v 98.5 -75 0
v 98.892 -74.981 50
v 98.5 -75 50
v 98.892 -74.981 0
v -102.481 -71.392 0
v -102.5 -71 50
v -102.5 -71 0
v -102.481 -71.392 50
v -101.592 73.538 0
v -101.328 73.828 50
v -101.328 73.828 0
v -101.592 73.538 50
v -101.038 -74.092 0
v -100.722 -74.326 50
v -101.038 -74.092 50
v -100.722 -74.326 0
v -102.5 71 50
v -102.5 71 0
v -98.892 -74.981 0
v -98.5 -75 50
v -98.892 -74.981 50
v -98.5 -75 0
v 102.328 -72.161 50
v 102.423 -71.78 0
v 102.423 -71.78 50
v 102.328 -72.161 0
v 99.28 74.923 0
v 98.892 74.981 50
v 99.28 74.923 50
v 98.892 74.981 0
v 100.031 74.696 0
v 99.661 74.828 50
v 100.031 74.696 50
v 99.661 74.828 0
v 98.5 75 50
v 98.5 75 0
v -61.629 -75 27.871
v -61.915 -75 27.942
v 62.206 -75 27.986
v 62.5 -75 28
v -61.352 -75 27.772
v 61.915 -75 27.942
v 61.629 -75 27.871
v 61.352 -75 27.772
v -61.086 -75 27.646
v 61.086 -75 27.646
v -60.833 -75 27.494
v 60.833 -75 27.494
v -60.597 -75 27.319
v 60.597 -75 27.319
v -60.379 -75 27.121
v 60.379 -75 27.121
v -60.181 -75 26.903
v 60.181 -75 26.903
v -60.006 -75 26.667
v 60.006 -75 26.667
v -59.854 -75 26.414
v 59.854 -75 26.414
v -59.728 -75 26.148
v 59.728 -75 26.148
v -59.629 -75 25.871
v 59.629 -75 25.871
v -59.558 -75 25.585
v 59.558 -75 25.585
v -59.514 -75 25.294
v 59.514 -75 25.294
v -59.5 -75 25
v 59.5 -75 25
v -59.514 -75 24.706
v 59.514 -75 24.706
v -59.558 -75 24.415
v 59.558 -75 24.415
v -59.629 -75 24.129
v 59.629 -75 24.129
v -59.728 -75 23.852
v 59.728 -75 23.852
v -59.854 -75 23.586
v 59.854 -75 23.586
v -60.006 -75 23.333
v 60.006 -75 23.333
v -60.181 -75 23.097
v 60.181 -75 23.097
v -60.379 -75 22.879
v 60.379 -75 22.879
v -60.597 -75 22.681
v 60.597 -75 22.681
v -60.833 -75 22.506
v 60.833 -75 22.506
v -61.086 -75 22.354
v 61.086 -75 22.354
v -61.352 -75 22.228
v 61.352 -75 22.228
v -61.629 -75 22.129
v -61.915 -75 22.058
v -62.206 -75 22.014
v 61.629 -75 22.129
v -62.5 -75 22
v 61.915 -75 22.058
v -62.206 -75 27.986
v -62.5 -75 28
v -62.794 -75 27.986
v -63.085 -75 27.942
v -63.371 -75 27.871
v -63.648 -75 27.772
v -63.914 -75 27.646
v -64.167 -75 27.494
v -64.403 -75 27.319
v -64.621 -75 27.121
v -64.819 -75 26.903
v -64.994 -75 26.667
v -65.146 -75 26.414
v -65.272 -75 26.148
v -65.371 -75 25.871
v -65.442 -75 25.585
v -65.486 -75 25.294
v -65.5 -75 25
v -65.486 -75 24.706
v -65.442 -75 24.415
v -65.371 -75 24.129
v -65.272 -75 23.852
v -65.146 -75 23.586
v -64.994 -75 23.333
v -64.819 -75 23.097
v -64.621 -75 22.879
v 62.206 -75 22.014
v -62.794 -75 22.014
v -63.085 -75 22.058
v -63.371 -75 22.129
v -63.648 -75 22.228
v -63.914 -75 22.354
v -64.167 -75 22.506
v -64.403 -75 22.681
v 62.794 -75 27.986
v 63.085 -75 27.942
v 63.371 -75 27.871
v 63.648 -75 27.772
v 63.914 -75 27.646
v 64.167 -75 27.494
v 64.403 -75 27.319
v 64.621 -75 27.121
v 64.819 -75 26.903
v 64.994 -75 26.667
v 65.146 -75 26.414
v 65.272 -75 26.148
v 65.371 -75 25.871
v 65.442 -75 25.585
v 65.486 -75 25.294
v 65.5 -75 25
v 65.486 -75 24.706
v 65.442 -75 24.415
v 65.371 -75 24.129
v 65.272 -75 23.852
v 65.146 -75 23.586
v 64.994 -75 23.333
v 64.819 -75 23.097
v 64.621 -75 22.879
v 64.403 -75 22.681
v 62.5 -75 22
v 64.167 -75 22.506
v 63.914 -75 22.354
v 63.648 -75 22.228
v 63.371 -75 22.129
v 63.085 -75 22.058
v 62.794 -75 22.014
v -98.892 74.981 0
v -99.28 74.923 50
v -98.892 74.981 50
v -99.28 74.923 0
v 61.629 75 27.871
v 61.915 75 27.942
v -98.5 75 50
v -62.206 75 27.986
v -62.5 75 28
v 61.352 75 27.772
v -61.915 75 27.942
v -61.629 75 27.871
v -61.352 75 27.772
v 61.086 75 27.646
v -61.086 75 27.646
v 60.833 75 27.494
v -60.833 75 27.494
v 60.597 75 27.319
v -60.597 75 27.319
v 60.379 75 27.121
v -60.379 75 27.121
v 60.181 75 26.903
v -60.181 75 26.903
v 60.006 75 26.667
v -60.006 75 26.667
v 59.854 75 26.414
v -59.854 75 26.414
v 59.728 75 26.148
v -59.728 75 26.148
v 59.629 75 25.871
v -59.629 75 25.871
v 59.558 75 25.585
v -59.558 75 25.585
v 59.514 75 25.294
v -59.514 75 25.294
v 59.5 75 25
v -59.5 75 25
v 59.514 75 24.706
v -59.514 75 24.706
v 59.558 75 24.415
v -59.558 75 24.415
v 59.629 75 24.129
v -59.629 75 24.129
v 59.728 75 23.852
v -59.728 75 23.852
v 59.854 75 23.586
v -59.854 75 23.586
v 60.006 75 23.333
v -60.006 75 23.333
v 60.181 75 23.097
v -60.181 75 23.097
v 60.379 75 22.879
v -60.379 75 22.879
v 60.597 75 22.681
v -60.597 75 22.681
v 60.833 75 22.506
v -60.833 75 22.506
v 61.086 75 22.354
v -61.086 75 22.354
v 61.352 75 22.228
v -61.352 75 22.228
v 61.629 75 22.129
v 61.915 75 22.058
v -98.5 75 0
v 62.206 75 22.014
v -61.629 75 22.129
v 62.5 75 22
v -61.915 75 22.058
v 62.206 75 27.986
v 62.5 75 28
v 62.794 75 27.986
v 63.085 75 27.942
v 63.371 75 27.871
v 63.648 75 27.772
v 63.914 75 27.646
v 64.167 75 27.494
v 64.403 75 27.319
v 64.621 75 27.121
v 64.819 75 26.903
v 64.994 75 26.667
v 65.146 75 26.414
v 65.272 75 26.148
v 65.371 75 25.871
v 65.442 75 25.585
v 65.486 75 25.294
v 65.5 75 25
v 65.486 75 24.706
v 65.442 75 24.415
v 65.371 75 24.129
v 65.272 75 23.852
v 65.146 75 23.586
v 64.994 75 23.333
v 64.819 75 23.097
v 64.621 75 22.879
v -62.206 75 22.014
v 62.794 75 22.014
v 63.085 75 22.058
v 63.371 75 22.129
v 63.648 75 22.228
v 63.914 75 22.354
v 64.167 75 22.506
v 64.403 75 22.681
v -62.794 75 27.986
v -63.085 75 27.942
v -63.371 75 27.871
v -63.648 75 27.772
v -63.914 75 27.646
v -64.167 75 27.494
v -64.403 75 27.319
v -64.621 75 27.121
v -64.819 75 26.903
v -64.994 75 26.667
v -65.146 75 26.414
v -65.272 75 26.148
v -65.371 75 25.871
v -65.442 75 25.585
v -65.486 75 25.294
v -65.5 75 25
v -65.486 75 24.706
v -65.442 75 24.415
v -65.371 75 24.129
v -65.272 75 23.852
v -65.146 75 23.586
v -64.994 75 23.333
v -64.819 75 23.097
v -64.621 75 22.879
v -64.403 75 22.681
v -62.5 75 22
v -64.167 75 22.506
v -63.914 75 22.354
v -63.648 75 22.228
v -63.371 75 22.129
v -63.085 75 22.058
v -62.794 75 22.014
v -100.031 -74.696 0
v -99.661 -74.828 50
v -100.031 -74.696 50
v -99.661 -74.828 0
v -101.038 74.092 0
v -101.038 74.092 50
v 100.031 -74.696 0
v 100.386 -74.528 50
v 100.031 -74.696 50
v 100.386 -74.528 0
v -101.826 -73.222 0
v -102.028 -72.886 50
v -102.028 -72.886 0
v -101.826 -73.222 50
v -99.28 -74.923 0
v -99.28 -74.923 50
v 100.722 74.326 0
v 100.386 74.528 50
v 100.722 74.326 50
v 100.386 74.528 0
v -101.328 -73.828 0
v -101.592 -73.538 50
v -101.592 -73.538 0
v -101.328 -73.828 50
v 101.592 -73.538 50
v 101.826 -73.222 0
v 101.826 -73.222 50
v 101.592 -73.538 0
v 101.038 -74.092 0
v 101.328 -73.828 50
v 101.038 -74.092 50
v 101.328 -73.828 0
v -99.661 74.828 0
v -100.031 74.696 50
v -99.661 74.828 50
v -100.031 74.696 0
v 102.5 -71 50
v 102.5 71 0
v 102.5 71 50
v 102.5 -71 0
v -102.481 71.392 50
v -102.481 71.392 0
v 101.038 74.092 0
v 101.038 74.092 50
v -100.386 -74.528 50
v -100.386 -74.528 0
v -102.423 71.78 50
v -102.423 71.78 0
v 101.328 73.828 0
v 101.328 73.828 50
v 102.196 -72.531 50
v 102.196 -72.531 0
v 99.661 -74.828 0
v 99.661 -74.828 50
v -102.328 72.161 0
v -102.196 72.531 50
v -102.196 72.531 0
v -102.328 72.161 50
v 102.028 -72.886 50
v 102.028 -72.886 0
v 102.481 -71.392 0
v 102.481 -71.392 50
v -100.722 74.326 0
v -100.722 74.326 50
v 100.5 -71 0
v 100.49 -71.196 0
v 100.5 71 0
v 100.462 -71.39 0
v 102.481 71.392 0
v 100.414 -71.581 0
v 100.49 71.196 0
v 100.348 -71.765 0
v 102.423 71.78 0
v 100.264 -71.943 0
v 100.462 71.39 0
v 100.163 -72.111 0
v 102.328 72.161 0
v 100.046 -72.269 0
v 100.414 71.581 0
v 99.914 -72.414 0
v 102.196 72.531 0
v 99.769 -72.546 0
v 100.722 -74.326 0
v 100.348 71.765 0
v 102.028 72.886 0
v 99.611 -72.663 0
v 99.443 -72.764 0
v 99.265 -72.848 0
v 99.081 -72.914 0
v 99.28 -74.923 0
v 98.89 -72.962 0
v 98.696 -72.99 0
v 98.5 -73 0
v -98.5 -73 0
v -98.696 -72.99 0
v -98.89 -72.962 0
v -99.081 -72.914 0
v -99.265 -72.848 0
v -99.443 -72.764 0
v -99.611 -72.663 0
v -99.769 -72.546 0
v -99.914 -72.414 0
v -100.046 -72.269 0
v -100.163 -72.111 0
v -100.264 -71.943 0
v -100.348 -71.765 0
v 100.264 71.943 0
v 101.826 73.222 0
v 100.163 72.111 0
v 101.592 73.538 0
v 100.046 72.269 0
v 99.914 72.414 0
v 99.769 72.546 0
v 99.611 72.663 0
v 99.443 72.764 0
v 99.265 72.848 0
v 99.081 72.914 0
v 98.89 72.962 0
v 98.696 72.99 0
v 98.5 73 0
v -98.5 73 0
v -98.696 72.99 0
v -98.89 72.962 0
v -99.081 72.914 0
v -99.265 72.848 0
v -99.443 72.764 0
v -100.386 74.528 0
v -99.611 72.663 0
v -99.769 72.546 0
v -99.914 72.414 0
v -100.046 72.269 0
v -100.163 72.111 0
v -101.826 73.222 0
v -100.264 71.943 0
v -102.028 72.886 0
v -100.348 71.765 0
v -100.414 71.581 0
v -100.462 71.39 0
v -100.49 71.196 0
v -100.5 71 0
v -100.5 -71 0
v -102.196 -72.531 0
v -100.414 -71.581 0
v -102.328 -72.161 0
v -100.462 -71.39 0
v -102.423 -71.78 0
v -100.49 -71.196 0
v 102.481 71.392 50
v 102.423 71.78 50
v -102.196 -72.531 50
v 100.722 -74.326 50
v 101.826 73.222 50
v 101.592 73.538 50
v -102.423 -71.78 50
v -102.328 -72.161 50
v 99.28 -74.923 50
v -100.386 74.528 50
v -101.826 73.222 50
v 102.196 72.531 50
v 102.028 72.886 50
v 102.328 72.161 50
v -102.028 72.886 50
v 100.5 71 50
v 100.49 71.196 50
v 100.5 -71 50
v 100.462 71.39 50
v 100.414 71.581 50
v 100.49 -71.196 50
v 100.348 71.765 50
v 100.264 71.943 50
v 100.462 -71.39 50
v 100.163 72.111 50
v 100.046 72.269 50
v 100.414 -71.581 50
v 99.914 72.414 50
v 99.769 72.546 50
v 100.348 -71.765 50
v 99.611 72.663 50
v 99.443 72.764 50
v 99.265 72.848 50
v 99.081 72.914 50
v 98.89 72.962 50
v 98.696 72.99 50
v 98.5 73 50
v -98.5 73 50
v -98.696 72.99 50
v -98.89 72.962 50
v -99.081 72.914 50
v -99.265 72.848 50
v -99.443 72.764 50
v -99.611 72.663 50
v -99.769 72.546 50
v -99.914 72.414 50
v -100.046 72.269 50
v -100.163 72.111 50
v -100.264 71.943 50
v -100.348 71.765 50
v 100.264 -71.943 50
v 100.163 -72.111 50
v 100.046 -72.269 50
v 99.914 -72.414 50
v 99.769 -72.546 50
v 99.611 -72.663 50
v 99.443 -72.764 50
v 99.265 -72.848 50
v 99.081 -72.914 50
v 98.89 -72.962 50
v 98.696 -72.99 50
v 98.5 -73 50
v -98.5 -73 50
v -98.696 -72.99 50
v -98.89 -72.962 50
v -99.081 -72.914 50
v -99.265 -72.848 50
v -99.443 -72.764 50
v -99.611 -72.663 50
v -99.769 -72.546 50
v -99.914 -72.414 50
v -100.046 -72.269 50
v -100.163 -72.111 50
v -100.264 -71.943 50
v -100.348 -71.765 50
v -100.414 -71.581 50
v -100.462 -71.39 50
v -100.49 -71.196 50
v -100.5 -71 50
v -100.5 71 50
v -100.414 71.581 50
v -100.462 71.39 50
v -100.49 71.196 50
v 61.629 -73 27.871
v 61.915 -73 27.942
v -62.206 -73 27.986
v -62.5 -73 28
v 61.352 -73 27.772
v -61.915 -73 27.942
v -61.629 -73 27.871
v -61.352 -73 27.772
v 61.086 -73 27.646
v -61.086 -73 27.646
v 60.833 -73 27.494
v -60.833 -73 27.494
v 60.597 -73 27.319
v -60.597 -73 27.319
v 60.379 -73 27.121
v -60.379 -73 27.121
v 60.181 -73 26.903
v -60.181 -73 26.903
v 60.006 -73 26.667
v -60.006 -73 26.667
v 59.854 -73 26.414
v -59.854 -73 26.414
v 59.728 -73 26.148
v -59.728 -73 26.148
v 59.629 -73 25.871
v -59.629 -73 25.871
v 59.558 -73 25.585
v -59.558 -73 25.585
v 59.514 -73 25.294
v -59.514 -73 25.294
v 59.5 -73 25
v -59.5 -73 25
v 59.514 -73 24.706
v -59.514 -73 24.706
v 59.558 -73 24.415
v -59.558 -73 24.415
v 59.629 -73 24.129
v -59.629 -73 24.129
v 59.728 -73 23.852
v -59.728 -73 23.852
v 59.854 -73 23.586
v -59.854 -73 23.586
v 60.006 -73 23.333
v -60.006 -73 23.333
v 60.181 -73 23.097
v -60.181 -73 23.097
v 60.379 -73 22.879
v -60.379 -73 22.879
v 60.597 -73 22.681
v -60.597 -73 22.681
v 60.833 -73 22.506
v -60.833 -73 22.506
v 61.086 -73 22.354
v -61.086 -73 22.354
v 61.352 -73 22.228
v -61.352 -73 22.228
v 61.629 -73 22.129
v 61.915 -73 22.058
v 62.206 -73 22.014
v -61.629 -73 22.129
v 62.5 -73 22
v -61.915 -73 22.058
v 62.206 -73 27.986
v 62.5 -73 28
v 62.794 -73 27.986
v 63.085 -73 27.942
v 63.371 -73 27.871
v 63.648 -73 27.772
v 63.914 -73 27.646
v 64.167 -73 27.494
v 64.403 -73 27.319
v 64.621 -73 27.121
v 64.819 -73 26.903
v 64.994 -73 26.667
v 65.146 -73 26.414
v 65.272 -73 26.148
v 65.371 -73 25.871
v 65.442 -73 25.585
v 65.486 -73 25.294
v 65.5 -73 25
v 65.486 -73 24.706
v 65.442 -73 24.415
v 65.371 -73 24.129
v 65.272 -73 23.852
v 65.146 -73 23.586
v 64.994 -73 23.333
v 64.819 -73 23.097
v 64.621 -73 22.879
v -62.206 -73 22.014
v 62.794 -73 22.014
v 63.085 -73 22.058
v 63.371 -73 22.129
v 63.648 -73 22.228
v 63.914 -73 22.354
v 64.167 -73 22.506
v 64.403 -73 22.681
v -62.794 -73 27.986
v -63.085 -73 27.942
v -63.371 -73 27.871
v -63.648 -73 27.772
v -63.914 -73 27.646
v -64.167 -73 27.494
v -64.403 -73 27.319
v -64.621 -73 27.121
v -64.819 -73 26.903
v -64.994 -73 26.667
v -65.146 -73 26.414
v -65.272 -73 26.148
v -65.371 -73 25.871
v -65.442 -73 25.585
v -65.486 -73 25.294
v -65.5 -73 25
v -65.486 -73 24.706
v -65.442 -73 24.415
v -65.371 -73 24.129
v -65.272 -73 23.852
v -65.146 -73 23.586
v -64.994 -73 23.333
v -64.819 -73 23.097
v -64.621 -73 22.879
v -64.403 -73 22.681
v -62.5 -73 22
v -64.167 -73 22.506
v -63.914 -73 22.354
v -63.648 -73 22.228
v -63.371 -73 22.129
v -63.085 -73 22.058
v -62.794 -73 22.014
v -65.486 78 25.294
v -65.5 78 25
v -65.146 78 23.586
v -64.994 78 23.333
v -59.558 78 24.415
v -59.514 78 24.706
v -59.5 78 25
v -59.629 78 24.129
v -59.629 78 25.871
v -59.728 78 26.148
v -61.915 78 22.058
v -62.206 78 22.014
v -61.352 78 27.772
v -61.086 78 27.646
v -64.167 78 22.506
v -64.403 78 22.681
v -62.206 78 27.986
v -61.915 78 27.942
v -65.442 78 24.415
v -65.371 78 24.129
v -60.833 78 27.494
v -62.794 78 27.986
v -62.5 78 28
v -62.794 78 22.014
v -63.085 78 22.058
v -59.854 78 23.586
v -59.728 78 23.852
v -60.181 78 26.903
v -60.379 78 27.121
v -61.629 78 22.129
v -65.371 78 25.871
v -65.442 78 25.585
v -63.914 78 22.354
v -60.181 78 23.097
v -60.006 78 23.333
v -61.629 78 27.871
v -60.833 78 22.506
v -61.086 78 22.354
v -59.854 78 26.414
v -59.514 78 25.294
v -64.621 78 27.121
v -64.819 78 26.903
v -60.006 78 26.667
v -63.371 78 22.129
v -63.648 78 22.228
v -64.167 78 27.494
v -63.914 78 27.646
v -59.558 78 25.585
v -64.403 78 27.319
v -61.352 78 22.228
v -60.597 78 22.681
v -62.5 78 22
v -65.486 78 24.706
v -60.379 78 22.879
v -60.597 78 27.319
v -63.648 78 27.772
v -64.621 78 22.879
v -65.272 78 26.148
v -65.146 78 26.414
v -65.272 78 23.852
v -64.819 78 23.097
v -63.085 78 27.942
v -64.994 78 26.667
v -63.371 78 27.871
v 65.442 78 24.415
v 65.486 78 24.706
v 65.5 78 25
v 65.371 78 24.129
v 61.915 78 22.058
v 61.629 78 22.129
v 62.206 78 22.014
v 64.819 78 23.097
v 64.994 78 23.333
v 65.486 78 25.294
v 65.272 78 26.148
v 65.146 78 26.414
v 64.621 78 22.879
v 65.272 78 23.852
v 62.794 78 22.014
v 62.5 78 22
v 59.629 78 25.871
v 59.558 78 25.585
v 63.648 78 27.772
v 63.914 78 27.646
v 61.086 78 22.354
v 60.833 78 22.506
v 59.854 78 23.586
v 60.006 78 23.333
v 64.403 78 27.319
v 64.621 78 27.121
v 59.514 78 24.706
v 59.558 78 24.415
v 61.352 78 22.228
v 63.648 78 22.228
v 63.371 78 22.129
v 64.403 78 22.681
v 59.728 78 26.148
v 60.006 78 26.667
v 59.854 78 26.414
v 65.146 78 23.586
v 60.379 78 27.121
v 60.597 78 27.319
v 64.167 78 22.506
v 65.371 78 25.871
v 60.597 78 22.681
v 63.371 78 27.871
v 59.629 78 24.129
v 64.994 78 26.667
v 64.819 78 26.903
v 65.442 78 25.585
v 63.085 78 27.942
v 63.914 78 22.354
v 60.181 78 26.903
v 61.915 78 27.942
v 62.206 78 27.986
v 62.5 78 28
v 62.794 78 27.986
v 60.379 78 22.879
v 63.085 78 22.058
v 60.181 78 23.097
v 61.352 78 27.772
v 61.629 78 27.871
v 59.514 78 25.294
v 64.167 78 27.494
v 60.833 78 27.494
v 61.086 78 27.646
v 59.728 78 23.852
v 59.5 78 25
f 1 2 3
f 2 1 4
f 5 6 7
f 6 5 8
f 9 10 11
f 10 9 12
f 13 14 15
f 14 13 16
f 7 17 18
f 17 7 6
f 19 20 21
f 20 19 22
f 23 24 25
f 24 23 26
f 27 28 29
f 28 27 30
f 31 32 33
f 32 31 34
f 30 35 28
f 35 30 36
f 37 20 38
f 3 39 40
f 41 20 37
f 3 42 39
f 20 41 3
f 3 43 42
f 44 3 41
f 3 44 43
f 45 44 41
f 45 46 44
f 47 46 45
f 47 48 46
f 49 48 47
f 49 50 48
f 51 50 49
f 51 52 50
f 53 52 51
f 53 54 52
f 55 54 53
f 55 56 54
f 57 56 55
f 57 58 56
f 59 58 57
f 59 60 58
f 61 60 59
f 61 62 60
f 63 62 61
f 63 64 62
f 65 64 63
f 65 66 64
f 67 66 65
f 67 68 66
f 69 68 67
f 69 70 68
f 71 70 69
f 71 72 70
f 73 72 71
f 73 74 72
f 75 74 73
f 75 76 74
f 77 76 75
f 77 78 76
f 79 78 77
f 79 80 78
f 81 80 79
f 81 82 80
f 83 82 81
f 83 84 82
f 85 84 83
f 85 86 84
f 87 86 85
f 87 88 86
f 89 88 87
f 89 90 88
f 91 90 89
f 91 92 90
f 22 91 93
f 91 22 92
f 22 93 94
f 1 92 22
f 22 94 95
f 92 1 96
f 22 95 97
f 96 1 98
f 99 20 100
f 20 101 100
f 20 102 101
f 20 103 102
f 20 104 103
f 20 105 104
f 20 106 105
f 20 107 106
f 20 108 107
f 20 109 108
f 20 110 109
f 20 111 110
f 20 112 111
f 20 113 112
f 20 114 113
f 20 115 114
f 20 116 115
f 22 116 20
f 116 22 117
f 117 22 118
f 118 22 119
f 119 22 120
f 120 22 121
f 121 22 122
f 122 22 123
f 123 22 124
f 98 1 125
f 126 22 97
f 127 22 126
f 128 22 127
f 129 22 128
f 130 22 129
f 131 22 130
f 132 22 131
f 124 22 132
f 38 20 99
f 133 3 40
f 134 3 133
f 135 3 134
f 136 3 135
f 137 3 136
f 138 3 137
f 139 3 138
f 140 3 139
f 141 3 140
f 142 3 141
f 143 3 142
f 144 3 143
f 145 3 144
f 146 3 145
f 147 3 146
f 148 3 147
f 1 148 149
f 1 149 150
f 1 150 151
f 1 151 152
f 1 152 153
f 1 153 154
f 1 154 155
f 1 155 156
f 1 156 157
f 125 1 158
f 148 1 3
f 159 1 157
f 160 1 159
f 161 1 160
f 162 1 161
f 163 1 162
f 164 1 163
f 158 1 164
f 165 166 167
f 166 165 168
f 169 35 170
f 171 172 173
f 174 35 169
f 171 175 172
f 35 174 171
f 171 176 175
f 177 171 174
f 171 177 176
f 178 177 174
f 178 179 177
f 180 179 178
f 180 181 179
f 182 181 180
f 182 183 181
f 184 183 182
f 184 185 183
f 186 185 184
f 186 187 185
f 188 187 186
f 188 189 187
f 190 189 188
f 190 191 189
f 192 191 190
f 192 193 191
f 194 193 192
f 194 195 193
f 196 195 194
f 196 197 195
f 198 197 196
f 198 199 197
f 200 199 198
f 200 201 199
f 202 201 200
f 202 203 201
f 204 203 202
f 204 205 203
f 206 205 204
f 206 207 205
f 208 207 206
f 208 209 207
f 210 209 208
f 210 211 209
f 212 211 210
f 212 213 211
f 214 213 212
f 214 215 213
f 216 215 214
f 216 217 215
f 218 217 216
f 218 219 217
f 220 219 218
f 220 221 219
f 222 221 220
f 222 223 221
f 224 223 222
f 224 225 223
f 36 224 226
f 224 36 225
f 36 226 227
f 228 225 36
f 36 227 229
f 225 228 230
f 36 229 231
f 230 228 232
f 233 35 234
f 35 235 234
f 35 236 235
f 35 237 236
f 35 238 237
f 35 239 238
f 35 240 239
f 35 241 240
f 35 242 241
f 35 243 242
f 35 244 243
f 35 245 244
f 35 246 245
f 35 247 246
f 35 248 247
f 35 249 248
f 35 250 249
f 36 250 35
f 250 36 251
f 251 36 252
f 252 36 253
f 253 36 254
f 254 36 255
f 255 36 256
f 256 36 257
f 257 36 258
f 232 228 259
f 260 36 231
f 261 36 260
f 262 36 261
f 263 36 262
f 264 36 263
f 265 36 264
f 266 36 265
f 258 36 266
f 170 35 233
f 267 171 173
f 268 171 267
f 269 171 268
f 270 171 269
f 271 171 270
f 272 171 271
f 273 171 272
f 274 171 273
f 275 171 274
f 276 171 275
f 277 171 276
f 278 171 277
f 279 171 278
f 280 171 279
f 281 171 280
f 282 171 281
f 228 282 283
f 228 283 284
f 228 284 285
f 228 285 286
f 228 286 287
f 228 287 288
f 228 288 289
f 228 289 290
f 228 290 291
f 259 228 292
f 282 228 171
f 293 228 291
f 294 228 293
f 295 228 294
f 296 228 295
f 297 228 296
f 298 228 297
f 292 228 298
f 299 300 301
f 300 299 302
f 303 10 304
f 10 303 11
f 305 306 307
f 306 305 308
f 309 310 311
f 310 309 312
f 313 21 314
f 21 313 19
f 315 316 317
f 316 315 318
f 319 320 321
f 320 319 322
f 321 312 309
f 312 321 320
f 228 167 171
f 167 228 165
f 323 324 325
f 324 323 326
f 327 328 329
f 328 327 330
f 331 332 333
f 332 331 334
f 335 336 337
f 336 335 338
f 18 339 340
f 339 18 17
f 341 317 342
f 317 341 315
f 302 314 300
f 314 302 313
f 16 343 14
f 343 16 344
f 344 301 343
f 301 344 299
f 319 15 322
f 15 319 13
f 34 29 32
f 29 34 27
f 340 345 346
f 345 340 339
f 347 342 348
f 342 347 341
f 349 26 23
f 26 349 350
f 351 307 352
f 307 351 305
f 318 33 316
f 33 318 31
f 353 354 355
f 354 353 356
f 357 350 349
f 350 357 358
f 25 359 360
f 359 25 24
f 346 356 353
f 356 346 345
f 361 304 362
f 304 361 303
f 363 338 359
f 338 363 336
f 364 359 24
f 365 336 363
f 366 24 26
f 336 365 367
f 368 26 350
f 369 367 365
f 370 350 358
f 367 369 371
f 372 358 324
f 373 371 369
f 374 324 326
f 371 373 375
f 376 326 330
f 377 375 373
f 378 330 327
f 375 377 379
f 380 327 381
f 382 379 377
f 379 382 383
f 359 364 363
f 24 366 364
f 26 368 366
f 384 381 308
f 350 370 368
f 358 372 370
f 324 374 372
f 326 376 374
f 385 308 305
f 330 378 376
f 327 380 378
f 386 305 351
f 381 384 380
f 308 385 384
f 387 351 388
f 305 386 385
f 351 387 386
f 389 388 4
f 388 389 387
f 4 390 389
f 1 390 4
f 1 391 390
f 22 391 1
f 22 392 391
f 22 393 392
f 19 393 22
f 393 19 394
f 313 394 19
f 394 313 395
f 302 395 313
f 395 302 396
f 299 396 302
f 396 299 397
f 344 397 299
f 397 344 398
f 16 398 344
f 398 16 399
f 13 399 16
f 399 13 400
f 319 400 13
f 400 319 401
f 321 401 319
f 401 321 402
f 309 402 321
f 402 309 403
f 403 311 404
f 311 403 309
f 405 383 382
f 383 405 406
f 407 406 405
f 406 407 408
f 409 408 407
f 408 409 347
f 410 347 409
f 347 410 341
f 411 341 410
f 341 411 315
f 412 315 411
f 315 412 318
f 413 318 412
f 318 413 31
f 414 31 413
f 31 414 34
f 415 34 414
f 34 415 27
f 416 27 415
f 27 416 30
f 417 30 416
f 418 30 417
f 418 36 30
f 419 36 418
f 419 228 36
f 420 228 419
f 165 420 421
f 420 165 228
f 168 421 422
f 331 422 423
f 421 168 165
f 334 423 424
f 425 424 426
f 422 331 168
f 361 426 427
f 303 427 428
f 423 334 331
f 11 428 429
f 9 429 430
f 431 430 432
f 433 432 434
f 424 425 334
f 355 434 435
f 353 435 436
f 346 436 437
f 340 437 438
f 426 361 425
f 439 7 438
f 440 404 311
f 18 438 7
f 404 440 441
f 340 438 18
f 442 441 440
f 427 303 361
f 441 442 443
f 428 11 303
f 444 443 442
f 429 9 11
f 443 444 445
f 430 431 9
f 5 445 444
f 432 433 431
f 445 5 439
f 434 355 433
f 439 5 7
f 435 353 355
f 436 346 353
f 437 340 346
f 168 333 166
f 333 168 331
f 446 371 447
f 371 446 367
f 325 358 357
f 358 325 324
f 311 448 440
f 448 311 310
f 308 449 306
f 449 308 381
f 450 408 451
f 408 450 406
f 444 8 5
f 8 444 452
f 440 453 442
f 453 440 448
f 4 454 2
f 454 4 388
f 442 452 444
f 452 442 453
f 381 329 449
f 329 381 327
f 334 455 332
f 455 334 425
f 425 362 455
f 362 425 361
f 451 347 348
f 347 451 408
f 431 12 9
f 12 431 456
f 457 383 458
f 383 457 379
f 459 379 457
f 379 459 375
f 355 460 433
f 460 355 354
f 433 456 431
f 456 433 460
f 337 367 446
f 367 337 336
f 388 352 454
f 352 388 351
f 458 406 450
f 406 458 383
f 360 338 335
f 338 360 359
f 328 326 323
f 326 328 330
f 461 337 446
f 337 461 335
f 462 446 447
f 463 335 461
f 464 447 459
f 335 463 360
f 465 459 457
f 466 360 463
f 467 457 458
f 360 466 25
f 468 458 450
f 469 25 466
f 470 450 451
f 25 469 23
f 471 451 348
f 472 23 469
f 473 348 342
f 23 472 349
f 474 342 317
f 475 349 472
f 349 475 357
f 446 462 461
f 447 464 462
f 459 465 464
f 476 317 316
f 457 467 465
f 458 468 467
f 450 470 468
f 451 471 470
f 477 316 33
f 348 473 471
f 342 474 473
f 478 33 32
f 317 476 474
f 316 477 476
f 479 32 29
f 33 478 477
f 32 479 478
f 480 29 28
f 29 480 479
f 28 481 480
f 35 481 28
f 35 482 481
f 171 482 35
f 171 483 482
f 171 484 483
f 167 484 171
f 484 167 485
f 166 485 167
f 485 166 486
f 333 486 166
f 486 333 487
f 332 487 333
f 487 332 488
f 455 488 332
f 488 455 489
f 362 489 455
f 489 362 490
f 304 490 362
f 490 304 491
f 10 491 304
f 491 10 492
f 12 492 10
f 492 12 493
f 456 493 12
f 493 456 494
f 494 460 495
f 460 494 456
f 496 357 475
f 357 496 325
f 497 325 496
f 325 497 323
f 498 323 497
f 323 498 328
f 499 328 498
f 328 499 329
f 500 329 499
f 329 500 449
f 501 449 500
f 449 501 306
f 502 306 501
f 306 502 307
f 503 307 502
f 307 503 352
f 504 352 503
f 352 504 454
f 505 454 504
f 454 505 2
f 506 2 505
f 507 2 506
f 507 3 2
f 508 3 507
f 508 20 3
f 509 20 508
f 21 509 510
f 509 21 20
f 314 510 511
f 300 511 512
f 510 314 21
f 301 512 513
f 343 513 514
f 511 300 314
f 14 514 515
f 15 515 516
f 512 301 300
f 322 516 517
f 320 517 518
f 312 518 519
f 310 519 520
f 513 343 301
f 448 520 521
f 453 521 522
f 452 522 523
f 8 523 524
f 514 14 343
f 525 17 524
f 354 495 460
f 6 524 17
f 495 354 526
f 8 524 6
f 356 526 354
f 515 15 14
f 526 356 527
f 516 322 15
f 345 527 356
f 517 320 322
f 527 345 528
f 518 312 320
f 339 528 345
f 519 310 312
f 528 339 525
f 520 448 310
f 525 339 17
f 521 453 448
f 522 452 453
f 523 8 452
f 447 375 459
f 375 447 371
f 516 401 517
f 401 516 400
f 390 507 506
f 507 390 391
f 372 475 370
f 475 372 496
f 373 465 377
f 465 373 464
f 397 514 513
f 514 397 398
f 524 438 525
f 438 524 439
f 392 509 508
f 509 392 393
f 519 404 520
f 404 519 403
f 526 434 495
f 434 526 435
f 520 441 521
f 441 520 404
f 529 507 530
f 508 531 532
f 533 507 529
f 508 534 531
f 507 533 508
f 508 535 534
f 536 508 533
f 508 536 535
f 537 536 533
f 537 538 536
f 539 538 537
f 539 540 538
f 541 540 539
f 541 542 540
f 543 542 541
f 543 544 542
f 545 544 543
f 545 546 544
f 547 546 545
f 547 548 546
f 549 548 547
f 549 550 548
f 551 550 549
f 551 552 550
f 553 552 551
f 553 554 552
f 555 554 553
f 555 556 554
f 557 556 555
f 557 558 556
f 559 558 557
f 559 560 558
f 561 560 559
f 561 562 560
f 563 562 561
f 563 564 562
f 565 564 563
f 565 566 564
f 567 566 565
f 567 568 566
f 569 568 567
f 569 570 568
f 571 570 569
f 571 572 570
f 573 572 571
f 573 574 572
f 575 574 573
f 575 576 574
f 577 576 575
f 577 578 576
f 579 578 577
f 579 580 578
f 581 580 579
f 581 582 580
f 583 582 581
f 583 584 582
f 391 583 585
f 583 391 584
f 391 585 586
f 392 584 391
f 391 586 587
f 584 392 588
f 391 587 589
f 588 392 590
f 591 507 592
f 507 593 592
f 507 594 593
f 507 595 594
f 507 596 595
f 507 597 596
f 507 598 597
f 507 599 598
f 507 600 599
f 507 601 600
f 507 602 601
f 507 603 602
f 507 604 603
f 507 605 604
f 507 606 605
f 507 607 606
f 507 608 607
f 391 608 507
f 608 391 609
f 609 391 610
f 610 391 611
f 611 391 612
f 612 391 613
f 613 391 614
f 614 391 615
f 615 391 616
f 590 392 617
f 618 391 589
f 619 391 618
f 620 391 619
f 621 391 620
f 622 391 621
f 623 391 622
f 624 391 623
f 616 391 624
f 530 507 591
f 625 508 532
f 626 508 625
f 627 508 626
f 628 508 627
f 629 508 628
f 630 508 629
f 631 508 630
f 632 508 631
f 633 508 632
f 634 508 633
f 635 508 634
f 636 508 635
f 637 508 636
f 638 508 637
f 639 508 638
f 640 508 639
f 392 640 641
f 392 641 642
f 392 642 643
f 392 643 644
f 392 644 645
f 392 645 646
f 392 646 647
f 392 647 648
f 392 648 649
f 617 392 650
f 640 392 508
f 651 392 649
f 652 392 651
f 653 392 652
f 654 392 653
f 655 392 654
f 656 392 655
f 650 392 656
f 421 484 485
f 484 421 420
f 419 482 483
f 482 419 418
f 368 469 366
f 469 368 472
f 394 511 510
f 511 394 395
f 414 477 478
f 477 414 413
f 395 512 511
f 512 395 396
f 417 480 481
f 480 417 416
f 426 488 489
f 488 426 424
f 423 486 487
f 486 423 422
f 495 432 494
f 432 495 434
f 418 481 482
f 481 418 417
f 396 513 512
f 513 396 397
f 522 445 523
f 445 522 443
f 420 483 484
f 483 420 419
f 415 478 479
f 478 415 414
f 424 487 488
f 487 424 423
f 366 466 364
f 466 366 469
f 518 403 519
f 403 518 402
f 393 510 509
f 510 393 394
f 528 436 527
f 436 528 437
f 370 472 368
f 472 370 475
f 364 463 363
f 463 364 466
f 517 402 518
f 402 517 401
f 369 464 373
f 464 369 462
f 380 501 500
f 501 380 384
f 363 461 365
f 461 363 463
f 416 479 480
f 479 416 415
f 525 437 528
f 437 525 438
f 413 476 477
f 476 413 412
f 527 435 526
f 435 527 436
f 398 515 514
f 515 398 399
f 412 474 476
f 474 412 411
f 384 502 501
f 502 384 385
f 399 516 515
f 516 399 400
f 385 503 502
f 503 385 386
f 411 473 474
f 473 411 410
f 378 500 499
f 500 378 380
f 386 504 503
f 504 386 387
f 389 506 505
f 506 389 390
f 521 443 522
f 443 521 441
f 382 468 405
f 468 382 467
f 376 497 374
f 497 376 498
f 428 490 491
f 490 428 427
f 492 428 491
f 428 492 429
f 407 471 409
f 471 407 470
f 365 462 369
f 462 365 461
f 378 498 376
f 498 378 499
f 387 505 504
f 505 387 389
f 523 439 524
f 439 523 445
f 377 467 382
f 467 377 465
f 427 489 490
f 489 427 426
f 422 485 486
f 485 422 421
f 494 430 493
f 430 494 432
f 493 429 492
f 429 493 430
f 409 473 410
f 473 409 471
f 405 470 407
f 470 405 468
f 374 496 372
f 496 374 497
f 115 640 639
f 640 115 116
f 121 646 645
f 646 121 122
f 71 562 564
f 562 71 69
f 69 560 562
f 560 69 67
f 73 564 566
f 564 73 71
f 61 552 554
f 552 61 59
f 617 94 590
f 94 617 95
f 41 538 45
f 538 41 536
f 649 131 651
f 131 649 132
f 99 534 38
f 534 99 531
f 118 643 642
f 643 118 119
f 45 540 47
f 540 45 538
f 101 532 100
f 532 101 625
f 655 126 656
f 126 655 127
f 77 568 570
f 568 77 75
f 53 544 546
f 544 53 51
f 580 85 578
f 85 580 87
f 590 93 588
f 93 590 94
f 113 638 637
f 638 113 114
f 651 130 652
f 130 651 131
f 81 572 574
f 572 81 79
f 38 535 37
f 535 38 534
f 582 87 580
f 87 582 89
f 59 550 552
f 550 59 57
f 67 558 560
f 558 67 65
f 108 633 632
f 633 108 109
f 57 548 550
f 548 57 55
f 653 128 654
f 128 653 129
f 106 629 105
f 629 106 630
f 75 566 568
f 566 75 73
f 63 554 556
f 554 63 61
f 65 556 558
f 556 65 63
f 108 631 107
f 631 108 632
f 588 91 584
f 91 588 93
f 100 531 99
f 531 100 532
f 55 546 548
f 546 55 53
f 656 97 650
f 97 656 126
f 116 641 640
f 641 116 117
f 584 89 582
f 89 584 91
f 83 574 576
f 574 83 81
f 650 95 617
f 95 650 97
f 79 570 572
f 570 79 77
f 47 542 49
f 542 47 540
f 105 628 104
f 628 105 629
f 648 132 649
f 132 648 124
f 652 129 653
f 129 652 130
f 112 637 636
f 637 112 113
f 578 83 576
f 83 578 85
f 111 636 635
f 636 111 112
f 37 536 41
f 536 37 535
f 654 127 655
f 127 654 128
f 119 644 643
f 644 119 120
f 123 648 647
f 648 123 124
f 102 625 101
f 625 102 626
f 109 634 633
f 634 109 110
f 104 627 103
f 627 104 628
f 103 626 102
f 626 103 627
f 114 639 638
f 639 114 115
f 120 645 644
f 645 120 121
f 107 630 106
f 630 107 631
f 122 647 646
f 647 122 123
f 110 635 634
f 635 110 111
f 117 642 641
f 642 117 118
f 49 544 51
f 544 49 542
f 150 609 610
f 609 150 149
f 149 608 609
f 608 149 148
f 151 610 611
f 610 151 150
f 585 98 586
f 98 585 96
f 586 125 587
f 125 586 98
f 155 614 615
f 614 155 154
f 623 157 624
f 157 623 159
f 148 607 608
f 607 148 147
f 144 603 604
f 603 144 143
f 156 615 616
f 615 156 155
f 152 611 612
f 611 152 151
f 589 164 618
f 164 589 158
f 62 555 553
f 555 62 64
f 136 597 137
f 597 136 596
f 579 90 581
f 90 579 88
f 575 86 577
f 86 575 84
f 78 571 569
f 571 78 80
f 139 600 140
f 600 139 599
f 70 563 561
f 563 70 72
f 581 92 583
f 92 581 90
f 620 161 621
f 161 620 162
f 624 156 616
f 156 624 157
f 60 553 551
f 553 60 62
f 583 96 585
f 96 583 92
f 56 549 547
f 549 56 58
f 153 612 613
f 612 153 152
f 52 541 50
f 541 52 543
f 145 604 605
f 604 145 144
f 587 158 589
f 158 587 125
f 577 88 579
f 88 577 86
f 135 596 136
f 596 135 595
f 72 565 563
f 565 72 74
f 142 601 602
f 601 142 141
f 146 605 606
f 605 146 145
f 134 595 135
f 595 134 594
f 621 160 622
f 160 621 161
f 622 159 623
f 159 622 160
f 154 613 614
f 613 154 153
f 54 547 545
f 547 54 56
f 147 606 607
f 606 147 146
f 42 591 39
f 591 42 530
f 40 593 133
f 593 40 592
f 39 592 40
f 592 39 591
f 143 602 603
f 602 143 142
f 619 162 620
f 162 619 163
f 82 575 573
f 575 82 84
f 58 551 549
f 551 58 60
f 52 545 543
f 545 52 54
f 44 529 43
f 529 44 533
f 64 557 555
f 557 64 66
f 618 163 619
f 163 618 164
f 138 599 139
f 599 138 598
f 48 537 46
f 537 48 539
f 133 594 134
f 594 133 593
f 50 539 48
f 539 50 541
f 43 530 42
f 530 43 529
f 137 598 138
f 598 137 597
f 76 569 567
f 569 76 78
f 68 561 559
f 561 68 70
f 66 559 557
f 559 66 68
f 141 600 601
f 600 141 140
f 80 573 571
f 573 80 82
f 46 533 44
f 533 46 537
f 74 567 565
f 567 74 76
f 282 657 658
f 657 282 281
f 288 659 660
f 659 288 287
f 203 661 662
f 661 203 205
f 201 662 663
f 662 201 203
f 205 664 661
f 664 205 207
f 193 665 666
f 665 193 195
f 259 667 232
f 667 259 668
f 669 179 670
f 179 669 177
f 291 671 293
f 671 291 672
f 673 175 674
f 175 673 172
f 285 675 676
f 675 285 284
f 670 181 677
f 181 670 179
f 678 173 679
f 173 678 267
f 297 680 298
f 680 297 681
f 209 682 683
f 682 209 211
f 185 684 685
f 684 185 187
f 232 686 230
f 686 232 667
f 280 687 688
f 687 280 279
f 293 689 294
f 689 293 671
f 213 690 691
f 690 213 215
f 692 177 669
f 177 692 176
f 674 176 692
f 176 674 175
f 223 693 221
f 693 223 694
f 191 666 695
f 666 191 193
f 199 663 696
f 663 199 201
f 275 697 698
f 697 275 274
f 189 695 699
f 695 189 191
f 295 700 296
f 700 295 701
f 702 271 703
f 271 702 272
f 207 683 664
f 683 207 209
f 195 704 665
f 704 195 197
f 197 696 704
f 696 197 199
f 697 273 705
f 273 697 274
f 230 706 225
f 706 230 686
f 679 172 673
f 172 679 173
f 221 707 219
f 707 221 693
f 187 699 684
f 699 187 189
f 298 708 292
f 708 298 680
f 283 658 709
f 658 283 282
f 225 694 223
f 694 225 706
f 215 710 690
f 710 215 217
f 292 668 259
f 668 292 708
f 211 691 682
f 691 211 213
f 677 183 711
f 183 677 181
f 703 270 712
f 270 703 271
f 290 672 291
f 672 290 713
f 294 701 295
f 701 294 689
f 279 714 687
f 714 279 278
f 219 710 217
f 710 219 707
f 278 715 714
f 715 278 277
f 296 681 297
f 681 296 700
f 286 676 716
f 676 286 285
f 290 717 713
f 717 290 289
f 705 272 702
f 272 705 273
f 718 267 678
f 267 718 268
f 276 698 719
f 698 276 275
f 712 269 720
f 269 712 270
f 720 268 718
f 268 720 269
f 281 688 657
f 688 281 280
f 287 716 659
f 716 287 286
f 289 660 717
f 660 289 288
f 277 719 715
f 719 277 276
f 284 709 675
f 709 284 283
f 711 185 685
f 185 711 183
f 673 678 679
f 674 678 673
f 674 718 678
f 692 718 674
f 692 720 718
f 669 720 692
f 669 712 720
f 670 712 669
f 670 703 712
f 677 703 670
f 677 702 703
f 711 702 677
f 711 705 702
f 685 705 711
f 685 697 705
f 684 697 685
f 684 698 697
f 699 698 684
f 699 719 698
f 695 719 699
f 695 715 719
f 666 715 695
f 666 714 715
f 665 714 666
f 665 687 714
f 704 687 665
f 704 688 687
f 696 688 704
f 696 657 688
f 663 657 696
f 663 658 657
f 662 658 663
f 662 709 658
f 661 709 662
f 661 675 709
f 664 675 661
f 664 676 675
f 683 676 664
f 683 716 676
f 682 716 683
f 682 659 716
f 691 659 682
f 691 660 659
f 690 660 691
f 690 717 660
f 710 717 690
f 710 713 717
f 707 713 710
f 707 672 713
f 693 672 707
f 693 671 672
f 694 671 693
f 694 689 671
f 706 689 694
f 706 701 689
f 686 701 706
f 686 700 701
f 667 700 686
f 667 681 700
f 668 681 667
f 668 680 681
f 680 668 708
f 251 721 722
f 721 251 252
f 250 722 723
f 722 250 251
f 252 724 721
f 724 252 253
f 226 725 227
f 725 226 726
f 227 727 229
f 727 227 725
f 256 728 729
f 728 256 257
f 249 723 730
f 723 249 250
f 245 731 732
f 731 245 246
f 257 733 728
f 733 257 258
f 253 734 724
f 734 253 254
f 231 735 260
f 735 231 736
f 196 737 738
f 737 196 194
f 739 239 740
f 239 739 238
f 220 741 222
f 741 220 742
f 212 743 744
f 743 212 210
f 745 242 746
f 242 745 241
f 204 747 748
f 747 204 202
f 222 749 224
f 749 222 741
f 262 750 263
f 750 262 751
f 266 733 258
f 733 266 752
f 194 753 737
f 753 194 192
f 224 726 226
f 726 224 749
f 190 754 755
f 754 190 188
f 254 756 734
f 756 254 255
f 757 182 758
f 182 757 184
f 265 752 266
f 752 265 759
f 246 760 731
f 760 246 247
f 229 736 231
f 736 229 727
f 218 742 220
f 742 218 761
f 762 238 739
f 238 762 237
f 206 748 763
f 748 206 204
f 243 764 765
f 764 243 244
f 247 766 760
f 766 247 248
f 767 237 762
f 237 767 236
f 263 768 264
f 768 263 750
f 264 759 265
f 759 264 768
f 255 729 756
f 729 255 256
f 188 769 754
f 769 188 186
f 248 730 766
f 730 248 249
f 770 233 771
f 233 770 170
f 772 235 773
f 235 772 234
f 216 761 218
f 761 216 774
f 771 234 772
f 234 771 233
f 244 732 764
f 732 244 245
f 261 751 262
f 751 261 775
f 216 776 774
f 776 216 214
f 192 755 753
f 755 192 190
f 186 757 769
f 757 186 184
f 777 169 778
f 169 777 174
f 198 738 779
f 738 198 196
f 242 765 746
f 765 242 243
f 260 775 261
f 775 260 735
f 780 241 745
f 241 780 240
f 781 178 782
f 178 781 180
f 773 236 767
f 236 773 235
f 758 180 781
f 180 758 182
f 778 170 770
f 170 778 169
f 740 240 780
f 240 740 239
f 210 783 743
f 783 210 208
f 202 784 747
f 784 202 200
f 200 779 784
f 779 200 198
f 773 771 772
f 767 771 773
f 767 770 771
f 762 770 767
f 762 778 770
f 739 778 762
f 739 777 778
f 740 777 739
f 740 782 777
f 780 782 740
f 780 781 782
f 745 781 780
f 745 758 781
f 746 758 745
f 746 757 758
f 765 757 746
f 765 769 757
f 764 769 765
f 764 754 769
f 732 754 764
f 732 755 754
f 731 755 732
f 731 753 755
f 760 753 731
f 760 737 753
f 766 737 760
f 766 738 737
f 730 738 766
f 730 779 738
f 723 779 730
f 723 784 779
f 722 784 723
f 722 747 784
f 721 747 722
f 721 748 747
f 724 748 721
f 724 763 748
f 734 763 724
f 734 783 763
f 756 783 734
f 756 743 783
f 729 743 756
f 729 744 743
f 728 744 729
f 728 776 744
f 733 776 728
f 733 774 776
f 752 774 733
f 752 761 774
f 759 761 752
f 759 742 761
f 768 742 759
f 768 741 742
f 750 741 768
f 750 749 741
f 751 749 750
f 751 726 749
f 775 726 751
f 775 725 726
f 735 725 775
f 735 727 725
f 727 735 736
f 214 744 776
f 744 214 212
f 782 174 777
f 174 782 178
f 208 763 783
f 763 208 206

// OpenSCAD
// Roller Cab Drawer Separator
// Outer size: 205 mm x 150 mm
// Depth: 50 mm
// Open top and bottom
// Two alignment pins on one LONG side
// Two matching receiving holes on opposite LONG side
// Units: mm

$fn = 64;

// ---------- MAIN PARAMETERS ----------
outer_length = 205;
outer_width  = 150;
height = 50;

wall_thickness = 2;
corner_radius = 4;


// ---------- ALIGNMENT PIN PARAMETERS ----------
pin_diameter = 6;
pin_length = 3;

// Distance of pins/holes from each end of the 205 mm side
pin_end_offset = 40;

// Vertical centre of pins/holes
pin_height = height / 2;


// ---------- RECEIVING HOLE PARAMETERS ----------
hole_diameter = 6;    // exact match to pin diameter
hole_depth = wall_thickness + 1;


// ---------- ROUNDED FRAME WITH RECEIVING HOLES ----------
module separator_frame() {

    difference() {

        // Main hollow frame
        difference() {

            // Outer rounded frame
            linear_extrude(height = height)
                offset(r = corner_radius)
                    square([
                        outer_length - (corner_radius * 2),
                        outer_width  - (corner_radius * 2)
                    ], center = true);

            // Hollow centre
            translate([0, 0, -1])
                linear_extrude(height = height + 2)
                    offset(r = max(corner_radius - wall_thickness, 0.1))
                        square([
                            outer_length
                                - (wall_thickness * 2)
                                - ((corner_radius - wall_thickness) * 2),

                            outer_width
                                - (wall_thickness * 2)
                                - ((corner_radius - wall_thickness) * 2)
                        ], center = true);
        }

        // Receiving hole 1
        receiving_hole(
            -(outer_length / 2 - pin_end_offset)
        );

        // Receiving hole 2
        receiving_hole(
            outer_length / 2 - pin_end_offset
        );
    }
}


// ---------- ALIGNMENT PIN ----------
module alignment_pin(x_position) {

    translate([
        x_position,
        outer_width / 2 - 0.5,
        pin_height
    ])

        rotate([-90, 0, 0])

            cylinder(
                d = pin_diameter,
                h = pin_length + 0.5
            );
}


// ---------- RECEIVING HOLE ----------
module receiving_hole(x_position) {

    translate([
        x_position,
        -(outer_width / 2) - 0.5,
        pin_height
    ])

        rotate([-90, 0, 0])

            cylinder(
                d = hole_diameter,
                h = hole_depth
            );
}


// ---------- COMPLETE MODEL ----------
union() {

    separator_frame();

    // Left pin
    alignment_pin(
        -(outer_length / 2 - pin_end_offset)
    );

    // Right pin
    alignment_pin(
        outer_length / 2 - pin_end_offset
    );
}
// ---------- ALIGNMENT PIN ----------
module alignment_pin(x_position) {

    translate([
        x_position,
        outer_width / 2 - 0.5,
        pin_height
    ])

        rotate([-90, 0, 0])

            cylinder(
                d = pin_diameter,
                h = pin_length + 0.5
            );
}


// ---------- COMPLETE MODEL ----------
union() {

    separator_frame();

    // Left pin on long side
    alignment_pin(
        -(outer_length / 2 - pin_end_offset)
    );

    // Right pin on long side
    alignment_pin(
        outer_length / 2 - pin_end_offset
    );
}
